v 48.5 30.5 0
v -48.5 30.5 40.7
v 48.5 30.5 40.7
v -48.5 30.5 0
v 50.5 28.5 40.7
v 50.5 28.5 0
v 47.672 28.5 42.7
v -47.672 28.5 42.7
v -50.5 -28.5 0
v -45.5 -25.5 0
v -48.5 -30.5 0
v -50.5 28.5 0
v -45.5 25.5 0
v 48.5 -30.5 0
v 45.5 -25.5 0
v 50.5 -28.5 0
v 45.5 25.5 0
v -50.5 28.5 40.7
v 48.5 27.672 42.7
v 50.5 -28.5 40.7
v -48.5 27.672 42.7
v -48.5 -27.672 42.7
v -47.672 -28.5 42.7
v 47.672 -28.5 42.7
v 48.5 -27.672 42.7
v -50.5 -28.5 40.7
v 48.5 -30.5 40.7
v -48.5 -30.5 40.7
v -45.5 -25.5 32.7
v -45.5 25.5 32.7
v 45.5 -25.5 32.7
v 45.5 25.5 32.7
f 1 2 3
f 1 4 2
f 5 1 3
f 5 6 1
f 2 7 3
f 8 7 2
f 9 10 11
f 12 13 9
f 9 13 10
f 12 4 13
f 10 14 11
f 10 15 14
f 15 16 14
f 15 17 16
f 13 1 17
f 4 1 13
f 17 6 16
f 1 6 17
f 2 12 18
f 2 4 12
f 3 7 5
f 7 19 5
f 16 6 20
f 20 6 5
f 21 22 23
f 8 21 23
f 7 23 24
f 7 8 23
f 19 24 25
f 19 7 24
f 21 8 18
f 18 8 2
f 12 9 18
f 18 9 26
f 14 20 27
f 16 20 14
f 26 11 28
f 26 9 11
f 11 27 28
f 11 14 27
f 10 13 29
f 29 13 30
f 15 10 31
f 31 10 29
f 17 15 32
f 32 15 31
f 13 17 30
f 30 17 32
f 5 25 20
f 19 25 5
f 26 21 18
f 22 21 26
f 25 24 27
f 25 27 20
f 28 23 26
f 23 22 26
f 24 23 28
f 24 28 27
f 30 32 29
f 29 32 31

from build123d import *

# Parameters (mm, degrees)
SKETCH_W        = 101
SKETCH_H        = 61
PAD_DEPTH       = 42.7
SKETCH001_W     = 91
SKETCH001_H     = 51
POCKET_DEPTH    = 32.7
CHAMFER_SIZE    = 2
CHAMFER001_SIZE = 2
CHAMFER002_SIZE = 2
CHAMFER003_SIZE = 2


with BuildPart() as part:
    # Sketch → Pad (new body)
    with BuildSketch(Plane.XY):
        Rectangle(SKETCH_W, SKETCH_H)
    extrude(amount=PAD_DEPTH)

    # Sketch001 (on Face5 of Pad) → Pocket (cut)
    with BuildSketch(Plane(origin=(0, 0, 0), x_dir=(1, 0, 0), z_dir=(0, 0, -1))):
        Rectangle(SKETCH001_W, SKETCH001_H)
    extrude(amount=-POCKET_DEPTH, mode=Mode.SUBTRACT)

    # Chamfer
    chamfer_edges = [part.edges().sort_by_distance(p)[0] for p in [
        (-50.5, -30.5, 21.35),
    ]]
    chamfer(chamfer_edges, length=CHAMFER_SIZE)

    # Chamfer001
    chamfer001_edges = [part.edges().sort_by_distance(p)[0] for p in [
        (-50.5, 30.5, 21.35),
    ]]
    chamfer(chamfer001_edges, length=CHAMFER001_SIZE)

    # Chamfer002
    chamfer002_edges = [part.edges().sort_by_distance(p)[0] for p in [
        (50.5, 30.5, 21.35),
        (50.5, -30.5, 21.35),
    ]]
    chamfer(chamfer002_edges, length=CHAMFER002_SIZE)

    # Chamfer003
    chamfer003_edges = [part.edges().sort_by_distance(p)[0] for p in [
        (0, 30.5, 42.7),
        (49.5, 29.5, 42.7),
        (-49.5, 29.5, 42.7),
        (50.5, 0, 42.7),
        (-50.5, 0, 42.7),
        (49.5, -29.5, 42.7),
        (-49.5, -29.5, 42.7),
        (0, -30.5, 42.7),
    ]]
    chamfer(chamfer003_edges, length=CHAMFER003_SIZE)


solid = part.part
